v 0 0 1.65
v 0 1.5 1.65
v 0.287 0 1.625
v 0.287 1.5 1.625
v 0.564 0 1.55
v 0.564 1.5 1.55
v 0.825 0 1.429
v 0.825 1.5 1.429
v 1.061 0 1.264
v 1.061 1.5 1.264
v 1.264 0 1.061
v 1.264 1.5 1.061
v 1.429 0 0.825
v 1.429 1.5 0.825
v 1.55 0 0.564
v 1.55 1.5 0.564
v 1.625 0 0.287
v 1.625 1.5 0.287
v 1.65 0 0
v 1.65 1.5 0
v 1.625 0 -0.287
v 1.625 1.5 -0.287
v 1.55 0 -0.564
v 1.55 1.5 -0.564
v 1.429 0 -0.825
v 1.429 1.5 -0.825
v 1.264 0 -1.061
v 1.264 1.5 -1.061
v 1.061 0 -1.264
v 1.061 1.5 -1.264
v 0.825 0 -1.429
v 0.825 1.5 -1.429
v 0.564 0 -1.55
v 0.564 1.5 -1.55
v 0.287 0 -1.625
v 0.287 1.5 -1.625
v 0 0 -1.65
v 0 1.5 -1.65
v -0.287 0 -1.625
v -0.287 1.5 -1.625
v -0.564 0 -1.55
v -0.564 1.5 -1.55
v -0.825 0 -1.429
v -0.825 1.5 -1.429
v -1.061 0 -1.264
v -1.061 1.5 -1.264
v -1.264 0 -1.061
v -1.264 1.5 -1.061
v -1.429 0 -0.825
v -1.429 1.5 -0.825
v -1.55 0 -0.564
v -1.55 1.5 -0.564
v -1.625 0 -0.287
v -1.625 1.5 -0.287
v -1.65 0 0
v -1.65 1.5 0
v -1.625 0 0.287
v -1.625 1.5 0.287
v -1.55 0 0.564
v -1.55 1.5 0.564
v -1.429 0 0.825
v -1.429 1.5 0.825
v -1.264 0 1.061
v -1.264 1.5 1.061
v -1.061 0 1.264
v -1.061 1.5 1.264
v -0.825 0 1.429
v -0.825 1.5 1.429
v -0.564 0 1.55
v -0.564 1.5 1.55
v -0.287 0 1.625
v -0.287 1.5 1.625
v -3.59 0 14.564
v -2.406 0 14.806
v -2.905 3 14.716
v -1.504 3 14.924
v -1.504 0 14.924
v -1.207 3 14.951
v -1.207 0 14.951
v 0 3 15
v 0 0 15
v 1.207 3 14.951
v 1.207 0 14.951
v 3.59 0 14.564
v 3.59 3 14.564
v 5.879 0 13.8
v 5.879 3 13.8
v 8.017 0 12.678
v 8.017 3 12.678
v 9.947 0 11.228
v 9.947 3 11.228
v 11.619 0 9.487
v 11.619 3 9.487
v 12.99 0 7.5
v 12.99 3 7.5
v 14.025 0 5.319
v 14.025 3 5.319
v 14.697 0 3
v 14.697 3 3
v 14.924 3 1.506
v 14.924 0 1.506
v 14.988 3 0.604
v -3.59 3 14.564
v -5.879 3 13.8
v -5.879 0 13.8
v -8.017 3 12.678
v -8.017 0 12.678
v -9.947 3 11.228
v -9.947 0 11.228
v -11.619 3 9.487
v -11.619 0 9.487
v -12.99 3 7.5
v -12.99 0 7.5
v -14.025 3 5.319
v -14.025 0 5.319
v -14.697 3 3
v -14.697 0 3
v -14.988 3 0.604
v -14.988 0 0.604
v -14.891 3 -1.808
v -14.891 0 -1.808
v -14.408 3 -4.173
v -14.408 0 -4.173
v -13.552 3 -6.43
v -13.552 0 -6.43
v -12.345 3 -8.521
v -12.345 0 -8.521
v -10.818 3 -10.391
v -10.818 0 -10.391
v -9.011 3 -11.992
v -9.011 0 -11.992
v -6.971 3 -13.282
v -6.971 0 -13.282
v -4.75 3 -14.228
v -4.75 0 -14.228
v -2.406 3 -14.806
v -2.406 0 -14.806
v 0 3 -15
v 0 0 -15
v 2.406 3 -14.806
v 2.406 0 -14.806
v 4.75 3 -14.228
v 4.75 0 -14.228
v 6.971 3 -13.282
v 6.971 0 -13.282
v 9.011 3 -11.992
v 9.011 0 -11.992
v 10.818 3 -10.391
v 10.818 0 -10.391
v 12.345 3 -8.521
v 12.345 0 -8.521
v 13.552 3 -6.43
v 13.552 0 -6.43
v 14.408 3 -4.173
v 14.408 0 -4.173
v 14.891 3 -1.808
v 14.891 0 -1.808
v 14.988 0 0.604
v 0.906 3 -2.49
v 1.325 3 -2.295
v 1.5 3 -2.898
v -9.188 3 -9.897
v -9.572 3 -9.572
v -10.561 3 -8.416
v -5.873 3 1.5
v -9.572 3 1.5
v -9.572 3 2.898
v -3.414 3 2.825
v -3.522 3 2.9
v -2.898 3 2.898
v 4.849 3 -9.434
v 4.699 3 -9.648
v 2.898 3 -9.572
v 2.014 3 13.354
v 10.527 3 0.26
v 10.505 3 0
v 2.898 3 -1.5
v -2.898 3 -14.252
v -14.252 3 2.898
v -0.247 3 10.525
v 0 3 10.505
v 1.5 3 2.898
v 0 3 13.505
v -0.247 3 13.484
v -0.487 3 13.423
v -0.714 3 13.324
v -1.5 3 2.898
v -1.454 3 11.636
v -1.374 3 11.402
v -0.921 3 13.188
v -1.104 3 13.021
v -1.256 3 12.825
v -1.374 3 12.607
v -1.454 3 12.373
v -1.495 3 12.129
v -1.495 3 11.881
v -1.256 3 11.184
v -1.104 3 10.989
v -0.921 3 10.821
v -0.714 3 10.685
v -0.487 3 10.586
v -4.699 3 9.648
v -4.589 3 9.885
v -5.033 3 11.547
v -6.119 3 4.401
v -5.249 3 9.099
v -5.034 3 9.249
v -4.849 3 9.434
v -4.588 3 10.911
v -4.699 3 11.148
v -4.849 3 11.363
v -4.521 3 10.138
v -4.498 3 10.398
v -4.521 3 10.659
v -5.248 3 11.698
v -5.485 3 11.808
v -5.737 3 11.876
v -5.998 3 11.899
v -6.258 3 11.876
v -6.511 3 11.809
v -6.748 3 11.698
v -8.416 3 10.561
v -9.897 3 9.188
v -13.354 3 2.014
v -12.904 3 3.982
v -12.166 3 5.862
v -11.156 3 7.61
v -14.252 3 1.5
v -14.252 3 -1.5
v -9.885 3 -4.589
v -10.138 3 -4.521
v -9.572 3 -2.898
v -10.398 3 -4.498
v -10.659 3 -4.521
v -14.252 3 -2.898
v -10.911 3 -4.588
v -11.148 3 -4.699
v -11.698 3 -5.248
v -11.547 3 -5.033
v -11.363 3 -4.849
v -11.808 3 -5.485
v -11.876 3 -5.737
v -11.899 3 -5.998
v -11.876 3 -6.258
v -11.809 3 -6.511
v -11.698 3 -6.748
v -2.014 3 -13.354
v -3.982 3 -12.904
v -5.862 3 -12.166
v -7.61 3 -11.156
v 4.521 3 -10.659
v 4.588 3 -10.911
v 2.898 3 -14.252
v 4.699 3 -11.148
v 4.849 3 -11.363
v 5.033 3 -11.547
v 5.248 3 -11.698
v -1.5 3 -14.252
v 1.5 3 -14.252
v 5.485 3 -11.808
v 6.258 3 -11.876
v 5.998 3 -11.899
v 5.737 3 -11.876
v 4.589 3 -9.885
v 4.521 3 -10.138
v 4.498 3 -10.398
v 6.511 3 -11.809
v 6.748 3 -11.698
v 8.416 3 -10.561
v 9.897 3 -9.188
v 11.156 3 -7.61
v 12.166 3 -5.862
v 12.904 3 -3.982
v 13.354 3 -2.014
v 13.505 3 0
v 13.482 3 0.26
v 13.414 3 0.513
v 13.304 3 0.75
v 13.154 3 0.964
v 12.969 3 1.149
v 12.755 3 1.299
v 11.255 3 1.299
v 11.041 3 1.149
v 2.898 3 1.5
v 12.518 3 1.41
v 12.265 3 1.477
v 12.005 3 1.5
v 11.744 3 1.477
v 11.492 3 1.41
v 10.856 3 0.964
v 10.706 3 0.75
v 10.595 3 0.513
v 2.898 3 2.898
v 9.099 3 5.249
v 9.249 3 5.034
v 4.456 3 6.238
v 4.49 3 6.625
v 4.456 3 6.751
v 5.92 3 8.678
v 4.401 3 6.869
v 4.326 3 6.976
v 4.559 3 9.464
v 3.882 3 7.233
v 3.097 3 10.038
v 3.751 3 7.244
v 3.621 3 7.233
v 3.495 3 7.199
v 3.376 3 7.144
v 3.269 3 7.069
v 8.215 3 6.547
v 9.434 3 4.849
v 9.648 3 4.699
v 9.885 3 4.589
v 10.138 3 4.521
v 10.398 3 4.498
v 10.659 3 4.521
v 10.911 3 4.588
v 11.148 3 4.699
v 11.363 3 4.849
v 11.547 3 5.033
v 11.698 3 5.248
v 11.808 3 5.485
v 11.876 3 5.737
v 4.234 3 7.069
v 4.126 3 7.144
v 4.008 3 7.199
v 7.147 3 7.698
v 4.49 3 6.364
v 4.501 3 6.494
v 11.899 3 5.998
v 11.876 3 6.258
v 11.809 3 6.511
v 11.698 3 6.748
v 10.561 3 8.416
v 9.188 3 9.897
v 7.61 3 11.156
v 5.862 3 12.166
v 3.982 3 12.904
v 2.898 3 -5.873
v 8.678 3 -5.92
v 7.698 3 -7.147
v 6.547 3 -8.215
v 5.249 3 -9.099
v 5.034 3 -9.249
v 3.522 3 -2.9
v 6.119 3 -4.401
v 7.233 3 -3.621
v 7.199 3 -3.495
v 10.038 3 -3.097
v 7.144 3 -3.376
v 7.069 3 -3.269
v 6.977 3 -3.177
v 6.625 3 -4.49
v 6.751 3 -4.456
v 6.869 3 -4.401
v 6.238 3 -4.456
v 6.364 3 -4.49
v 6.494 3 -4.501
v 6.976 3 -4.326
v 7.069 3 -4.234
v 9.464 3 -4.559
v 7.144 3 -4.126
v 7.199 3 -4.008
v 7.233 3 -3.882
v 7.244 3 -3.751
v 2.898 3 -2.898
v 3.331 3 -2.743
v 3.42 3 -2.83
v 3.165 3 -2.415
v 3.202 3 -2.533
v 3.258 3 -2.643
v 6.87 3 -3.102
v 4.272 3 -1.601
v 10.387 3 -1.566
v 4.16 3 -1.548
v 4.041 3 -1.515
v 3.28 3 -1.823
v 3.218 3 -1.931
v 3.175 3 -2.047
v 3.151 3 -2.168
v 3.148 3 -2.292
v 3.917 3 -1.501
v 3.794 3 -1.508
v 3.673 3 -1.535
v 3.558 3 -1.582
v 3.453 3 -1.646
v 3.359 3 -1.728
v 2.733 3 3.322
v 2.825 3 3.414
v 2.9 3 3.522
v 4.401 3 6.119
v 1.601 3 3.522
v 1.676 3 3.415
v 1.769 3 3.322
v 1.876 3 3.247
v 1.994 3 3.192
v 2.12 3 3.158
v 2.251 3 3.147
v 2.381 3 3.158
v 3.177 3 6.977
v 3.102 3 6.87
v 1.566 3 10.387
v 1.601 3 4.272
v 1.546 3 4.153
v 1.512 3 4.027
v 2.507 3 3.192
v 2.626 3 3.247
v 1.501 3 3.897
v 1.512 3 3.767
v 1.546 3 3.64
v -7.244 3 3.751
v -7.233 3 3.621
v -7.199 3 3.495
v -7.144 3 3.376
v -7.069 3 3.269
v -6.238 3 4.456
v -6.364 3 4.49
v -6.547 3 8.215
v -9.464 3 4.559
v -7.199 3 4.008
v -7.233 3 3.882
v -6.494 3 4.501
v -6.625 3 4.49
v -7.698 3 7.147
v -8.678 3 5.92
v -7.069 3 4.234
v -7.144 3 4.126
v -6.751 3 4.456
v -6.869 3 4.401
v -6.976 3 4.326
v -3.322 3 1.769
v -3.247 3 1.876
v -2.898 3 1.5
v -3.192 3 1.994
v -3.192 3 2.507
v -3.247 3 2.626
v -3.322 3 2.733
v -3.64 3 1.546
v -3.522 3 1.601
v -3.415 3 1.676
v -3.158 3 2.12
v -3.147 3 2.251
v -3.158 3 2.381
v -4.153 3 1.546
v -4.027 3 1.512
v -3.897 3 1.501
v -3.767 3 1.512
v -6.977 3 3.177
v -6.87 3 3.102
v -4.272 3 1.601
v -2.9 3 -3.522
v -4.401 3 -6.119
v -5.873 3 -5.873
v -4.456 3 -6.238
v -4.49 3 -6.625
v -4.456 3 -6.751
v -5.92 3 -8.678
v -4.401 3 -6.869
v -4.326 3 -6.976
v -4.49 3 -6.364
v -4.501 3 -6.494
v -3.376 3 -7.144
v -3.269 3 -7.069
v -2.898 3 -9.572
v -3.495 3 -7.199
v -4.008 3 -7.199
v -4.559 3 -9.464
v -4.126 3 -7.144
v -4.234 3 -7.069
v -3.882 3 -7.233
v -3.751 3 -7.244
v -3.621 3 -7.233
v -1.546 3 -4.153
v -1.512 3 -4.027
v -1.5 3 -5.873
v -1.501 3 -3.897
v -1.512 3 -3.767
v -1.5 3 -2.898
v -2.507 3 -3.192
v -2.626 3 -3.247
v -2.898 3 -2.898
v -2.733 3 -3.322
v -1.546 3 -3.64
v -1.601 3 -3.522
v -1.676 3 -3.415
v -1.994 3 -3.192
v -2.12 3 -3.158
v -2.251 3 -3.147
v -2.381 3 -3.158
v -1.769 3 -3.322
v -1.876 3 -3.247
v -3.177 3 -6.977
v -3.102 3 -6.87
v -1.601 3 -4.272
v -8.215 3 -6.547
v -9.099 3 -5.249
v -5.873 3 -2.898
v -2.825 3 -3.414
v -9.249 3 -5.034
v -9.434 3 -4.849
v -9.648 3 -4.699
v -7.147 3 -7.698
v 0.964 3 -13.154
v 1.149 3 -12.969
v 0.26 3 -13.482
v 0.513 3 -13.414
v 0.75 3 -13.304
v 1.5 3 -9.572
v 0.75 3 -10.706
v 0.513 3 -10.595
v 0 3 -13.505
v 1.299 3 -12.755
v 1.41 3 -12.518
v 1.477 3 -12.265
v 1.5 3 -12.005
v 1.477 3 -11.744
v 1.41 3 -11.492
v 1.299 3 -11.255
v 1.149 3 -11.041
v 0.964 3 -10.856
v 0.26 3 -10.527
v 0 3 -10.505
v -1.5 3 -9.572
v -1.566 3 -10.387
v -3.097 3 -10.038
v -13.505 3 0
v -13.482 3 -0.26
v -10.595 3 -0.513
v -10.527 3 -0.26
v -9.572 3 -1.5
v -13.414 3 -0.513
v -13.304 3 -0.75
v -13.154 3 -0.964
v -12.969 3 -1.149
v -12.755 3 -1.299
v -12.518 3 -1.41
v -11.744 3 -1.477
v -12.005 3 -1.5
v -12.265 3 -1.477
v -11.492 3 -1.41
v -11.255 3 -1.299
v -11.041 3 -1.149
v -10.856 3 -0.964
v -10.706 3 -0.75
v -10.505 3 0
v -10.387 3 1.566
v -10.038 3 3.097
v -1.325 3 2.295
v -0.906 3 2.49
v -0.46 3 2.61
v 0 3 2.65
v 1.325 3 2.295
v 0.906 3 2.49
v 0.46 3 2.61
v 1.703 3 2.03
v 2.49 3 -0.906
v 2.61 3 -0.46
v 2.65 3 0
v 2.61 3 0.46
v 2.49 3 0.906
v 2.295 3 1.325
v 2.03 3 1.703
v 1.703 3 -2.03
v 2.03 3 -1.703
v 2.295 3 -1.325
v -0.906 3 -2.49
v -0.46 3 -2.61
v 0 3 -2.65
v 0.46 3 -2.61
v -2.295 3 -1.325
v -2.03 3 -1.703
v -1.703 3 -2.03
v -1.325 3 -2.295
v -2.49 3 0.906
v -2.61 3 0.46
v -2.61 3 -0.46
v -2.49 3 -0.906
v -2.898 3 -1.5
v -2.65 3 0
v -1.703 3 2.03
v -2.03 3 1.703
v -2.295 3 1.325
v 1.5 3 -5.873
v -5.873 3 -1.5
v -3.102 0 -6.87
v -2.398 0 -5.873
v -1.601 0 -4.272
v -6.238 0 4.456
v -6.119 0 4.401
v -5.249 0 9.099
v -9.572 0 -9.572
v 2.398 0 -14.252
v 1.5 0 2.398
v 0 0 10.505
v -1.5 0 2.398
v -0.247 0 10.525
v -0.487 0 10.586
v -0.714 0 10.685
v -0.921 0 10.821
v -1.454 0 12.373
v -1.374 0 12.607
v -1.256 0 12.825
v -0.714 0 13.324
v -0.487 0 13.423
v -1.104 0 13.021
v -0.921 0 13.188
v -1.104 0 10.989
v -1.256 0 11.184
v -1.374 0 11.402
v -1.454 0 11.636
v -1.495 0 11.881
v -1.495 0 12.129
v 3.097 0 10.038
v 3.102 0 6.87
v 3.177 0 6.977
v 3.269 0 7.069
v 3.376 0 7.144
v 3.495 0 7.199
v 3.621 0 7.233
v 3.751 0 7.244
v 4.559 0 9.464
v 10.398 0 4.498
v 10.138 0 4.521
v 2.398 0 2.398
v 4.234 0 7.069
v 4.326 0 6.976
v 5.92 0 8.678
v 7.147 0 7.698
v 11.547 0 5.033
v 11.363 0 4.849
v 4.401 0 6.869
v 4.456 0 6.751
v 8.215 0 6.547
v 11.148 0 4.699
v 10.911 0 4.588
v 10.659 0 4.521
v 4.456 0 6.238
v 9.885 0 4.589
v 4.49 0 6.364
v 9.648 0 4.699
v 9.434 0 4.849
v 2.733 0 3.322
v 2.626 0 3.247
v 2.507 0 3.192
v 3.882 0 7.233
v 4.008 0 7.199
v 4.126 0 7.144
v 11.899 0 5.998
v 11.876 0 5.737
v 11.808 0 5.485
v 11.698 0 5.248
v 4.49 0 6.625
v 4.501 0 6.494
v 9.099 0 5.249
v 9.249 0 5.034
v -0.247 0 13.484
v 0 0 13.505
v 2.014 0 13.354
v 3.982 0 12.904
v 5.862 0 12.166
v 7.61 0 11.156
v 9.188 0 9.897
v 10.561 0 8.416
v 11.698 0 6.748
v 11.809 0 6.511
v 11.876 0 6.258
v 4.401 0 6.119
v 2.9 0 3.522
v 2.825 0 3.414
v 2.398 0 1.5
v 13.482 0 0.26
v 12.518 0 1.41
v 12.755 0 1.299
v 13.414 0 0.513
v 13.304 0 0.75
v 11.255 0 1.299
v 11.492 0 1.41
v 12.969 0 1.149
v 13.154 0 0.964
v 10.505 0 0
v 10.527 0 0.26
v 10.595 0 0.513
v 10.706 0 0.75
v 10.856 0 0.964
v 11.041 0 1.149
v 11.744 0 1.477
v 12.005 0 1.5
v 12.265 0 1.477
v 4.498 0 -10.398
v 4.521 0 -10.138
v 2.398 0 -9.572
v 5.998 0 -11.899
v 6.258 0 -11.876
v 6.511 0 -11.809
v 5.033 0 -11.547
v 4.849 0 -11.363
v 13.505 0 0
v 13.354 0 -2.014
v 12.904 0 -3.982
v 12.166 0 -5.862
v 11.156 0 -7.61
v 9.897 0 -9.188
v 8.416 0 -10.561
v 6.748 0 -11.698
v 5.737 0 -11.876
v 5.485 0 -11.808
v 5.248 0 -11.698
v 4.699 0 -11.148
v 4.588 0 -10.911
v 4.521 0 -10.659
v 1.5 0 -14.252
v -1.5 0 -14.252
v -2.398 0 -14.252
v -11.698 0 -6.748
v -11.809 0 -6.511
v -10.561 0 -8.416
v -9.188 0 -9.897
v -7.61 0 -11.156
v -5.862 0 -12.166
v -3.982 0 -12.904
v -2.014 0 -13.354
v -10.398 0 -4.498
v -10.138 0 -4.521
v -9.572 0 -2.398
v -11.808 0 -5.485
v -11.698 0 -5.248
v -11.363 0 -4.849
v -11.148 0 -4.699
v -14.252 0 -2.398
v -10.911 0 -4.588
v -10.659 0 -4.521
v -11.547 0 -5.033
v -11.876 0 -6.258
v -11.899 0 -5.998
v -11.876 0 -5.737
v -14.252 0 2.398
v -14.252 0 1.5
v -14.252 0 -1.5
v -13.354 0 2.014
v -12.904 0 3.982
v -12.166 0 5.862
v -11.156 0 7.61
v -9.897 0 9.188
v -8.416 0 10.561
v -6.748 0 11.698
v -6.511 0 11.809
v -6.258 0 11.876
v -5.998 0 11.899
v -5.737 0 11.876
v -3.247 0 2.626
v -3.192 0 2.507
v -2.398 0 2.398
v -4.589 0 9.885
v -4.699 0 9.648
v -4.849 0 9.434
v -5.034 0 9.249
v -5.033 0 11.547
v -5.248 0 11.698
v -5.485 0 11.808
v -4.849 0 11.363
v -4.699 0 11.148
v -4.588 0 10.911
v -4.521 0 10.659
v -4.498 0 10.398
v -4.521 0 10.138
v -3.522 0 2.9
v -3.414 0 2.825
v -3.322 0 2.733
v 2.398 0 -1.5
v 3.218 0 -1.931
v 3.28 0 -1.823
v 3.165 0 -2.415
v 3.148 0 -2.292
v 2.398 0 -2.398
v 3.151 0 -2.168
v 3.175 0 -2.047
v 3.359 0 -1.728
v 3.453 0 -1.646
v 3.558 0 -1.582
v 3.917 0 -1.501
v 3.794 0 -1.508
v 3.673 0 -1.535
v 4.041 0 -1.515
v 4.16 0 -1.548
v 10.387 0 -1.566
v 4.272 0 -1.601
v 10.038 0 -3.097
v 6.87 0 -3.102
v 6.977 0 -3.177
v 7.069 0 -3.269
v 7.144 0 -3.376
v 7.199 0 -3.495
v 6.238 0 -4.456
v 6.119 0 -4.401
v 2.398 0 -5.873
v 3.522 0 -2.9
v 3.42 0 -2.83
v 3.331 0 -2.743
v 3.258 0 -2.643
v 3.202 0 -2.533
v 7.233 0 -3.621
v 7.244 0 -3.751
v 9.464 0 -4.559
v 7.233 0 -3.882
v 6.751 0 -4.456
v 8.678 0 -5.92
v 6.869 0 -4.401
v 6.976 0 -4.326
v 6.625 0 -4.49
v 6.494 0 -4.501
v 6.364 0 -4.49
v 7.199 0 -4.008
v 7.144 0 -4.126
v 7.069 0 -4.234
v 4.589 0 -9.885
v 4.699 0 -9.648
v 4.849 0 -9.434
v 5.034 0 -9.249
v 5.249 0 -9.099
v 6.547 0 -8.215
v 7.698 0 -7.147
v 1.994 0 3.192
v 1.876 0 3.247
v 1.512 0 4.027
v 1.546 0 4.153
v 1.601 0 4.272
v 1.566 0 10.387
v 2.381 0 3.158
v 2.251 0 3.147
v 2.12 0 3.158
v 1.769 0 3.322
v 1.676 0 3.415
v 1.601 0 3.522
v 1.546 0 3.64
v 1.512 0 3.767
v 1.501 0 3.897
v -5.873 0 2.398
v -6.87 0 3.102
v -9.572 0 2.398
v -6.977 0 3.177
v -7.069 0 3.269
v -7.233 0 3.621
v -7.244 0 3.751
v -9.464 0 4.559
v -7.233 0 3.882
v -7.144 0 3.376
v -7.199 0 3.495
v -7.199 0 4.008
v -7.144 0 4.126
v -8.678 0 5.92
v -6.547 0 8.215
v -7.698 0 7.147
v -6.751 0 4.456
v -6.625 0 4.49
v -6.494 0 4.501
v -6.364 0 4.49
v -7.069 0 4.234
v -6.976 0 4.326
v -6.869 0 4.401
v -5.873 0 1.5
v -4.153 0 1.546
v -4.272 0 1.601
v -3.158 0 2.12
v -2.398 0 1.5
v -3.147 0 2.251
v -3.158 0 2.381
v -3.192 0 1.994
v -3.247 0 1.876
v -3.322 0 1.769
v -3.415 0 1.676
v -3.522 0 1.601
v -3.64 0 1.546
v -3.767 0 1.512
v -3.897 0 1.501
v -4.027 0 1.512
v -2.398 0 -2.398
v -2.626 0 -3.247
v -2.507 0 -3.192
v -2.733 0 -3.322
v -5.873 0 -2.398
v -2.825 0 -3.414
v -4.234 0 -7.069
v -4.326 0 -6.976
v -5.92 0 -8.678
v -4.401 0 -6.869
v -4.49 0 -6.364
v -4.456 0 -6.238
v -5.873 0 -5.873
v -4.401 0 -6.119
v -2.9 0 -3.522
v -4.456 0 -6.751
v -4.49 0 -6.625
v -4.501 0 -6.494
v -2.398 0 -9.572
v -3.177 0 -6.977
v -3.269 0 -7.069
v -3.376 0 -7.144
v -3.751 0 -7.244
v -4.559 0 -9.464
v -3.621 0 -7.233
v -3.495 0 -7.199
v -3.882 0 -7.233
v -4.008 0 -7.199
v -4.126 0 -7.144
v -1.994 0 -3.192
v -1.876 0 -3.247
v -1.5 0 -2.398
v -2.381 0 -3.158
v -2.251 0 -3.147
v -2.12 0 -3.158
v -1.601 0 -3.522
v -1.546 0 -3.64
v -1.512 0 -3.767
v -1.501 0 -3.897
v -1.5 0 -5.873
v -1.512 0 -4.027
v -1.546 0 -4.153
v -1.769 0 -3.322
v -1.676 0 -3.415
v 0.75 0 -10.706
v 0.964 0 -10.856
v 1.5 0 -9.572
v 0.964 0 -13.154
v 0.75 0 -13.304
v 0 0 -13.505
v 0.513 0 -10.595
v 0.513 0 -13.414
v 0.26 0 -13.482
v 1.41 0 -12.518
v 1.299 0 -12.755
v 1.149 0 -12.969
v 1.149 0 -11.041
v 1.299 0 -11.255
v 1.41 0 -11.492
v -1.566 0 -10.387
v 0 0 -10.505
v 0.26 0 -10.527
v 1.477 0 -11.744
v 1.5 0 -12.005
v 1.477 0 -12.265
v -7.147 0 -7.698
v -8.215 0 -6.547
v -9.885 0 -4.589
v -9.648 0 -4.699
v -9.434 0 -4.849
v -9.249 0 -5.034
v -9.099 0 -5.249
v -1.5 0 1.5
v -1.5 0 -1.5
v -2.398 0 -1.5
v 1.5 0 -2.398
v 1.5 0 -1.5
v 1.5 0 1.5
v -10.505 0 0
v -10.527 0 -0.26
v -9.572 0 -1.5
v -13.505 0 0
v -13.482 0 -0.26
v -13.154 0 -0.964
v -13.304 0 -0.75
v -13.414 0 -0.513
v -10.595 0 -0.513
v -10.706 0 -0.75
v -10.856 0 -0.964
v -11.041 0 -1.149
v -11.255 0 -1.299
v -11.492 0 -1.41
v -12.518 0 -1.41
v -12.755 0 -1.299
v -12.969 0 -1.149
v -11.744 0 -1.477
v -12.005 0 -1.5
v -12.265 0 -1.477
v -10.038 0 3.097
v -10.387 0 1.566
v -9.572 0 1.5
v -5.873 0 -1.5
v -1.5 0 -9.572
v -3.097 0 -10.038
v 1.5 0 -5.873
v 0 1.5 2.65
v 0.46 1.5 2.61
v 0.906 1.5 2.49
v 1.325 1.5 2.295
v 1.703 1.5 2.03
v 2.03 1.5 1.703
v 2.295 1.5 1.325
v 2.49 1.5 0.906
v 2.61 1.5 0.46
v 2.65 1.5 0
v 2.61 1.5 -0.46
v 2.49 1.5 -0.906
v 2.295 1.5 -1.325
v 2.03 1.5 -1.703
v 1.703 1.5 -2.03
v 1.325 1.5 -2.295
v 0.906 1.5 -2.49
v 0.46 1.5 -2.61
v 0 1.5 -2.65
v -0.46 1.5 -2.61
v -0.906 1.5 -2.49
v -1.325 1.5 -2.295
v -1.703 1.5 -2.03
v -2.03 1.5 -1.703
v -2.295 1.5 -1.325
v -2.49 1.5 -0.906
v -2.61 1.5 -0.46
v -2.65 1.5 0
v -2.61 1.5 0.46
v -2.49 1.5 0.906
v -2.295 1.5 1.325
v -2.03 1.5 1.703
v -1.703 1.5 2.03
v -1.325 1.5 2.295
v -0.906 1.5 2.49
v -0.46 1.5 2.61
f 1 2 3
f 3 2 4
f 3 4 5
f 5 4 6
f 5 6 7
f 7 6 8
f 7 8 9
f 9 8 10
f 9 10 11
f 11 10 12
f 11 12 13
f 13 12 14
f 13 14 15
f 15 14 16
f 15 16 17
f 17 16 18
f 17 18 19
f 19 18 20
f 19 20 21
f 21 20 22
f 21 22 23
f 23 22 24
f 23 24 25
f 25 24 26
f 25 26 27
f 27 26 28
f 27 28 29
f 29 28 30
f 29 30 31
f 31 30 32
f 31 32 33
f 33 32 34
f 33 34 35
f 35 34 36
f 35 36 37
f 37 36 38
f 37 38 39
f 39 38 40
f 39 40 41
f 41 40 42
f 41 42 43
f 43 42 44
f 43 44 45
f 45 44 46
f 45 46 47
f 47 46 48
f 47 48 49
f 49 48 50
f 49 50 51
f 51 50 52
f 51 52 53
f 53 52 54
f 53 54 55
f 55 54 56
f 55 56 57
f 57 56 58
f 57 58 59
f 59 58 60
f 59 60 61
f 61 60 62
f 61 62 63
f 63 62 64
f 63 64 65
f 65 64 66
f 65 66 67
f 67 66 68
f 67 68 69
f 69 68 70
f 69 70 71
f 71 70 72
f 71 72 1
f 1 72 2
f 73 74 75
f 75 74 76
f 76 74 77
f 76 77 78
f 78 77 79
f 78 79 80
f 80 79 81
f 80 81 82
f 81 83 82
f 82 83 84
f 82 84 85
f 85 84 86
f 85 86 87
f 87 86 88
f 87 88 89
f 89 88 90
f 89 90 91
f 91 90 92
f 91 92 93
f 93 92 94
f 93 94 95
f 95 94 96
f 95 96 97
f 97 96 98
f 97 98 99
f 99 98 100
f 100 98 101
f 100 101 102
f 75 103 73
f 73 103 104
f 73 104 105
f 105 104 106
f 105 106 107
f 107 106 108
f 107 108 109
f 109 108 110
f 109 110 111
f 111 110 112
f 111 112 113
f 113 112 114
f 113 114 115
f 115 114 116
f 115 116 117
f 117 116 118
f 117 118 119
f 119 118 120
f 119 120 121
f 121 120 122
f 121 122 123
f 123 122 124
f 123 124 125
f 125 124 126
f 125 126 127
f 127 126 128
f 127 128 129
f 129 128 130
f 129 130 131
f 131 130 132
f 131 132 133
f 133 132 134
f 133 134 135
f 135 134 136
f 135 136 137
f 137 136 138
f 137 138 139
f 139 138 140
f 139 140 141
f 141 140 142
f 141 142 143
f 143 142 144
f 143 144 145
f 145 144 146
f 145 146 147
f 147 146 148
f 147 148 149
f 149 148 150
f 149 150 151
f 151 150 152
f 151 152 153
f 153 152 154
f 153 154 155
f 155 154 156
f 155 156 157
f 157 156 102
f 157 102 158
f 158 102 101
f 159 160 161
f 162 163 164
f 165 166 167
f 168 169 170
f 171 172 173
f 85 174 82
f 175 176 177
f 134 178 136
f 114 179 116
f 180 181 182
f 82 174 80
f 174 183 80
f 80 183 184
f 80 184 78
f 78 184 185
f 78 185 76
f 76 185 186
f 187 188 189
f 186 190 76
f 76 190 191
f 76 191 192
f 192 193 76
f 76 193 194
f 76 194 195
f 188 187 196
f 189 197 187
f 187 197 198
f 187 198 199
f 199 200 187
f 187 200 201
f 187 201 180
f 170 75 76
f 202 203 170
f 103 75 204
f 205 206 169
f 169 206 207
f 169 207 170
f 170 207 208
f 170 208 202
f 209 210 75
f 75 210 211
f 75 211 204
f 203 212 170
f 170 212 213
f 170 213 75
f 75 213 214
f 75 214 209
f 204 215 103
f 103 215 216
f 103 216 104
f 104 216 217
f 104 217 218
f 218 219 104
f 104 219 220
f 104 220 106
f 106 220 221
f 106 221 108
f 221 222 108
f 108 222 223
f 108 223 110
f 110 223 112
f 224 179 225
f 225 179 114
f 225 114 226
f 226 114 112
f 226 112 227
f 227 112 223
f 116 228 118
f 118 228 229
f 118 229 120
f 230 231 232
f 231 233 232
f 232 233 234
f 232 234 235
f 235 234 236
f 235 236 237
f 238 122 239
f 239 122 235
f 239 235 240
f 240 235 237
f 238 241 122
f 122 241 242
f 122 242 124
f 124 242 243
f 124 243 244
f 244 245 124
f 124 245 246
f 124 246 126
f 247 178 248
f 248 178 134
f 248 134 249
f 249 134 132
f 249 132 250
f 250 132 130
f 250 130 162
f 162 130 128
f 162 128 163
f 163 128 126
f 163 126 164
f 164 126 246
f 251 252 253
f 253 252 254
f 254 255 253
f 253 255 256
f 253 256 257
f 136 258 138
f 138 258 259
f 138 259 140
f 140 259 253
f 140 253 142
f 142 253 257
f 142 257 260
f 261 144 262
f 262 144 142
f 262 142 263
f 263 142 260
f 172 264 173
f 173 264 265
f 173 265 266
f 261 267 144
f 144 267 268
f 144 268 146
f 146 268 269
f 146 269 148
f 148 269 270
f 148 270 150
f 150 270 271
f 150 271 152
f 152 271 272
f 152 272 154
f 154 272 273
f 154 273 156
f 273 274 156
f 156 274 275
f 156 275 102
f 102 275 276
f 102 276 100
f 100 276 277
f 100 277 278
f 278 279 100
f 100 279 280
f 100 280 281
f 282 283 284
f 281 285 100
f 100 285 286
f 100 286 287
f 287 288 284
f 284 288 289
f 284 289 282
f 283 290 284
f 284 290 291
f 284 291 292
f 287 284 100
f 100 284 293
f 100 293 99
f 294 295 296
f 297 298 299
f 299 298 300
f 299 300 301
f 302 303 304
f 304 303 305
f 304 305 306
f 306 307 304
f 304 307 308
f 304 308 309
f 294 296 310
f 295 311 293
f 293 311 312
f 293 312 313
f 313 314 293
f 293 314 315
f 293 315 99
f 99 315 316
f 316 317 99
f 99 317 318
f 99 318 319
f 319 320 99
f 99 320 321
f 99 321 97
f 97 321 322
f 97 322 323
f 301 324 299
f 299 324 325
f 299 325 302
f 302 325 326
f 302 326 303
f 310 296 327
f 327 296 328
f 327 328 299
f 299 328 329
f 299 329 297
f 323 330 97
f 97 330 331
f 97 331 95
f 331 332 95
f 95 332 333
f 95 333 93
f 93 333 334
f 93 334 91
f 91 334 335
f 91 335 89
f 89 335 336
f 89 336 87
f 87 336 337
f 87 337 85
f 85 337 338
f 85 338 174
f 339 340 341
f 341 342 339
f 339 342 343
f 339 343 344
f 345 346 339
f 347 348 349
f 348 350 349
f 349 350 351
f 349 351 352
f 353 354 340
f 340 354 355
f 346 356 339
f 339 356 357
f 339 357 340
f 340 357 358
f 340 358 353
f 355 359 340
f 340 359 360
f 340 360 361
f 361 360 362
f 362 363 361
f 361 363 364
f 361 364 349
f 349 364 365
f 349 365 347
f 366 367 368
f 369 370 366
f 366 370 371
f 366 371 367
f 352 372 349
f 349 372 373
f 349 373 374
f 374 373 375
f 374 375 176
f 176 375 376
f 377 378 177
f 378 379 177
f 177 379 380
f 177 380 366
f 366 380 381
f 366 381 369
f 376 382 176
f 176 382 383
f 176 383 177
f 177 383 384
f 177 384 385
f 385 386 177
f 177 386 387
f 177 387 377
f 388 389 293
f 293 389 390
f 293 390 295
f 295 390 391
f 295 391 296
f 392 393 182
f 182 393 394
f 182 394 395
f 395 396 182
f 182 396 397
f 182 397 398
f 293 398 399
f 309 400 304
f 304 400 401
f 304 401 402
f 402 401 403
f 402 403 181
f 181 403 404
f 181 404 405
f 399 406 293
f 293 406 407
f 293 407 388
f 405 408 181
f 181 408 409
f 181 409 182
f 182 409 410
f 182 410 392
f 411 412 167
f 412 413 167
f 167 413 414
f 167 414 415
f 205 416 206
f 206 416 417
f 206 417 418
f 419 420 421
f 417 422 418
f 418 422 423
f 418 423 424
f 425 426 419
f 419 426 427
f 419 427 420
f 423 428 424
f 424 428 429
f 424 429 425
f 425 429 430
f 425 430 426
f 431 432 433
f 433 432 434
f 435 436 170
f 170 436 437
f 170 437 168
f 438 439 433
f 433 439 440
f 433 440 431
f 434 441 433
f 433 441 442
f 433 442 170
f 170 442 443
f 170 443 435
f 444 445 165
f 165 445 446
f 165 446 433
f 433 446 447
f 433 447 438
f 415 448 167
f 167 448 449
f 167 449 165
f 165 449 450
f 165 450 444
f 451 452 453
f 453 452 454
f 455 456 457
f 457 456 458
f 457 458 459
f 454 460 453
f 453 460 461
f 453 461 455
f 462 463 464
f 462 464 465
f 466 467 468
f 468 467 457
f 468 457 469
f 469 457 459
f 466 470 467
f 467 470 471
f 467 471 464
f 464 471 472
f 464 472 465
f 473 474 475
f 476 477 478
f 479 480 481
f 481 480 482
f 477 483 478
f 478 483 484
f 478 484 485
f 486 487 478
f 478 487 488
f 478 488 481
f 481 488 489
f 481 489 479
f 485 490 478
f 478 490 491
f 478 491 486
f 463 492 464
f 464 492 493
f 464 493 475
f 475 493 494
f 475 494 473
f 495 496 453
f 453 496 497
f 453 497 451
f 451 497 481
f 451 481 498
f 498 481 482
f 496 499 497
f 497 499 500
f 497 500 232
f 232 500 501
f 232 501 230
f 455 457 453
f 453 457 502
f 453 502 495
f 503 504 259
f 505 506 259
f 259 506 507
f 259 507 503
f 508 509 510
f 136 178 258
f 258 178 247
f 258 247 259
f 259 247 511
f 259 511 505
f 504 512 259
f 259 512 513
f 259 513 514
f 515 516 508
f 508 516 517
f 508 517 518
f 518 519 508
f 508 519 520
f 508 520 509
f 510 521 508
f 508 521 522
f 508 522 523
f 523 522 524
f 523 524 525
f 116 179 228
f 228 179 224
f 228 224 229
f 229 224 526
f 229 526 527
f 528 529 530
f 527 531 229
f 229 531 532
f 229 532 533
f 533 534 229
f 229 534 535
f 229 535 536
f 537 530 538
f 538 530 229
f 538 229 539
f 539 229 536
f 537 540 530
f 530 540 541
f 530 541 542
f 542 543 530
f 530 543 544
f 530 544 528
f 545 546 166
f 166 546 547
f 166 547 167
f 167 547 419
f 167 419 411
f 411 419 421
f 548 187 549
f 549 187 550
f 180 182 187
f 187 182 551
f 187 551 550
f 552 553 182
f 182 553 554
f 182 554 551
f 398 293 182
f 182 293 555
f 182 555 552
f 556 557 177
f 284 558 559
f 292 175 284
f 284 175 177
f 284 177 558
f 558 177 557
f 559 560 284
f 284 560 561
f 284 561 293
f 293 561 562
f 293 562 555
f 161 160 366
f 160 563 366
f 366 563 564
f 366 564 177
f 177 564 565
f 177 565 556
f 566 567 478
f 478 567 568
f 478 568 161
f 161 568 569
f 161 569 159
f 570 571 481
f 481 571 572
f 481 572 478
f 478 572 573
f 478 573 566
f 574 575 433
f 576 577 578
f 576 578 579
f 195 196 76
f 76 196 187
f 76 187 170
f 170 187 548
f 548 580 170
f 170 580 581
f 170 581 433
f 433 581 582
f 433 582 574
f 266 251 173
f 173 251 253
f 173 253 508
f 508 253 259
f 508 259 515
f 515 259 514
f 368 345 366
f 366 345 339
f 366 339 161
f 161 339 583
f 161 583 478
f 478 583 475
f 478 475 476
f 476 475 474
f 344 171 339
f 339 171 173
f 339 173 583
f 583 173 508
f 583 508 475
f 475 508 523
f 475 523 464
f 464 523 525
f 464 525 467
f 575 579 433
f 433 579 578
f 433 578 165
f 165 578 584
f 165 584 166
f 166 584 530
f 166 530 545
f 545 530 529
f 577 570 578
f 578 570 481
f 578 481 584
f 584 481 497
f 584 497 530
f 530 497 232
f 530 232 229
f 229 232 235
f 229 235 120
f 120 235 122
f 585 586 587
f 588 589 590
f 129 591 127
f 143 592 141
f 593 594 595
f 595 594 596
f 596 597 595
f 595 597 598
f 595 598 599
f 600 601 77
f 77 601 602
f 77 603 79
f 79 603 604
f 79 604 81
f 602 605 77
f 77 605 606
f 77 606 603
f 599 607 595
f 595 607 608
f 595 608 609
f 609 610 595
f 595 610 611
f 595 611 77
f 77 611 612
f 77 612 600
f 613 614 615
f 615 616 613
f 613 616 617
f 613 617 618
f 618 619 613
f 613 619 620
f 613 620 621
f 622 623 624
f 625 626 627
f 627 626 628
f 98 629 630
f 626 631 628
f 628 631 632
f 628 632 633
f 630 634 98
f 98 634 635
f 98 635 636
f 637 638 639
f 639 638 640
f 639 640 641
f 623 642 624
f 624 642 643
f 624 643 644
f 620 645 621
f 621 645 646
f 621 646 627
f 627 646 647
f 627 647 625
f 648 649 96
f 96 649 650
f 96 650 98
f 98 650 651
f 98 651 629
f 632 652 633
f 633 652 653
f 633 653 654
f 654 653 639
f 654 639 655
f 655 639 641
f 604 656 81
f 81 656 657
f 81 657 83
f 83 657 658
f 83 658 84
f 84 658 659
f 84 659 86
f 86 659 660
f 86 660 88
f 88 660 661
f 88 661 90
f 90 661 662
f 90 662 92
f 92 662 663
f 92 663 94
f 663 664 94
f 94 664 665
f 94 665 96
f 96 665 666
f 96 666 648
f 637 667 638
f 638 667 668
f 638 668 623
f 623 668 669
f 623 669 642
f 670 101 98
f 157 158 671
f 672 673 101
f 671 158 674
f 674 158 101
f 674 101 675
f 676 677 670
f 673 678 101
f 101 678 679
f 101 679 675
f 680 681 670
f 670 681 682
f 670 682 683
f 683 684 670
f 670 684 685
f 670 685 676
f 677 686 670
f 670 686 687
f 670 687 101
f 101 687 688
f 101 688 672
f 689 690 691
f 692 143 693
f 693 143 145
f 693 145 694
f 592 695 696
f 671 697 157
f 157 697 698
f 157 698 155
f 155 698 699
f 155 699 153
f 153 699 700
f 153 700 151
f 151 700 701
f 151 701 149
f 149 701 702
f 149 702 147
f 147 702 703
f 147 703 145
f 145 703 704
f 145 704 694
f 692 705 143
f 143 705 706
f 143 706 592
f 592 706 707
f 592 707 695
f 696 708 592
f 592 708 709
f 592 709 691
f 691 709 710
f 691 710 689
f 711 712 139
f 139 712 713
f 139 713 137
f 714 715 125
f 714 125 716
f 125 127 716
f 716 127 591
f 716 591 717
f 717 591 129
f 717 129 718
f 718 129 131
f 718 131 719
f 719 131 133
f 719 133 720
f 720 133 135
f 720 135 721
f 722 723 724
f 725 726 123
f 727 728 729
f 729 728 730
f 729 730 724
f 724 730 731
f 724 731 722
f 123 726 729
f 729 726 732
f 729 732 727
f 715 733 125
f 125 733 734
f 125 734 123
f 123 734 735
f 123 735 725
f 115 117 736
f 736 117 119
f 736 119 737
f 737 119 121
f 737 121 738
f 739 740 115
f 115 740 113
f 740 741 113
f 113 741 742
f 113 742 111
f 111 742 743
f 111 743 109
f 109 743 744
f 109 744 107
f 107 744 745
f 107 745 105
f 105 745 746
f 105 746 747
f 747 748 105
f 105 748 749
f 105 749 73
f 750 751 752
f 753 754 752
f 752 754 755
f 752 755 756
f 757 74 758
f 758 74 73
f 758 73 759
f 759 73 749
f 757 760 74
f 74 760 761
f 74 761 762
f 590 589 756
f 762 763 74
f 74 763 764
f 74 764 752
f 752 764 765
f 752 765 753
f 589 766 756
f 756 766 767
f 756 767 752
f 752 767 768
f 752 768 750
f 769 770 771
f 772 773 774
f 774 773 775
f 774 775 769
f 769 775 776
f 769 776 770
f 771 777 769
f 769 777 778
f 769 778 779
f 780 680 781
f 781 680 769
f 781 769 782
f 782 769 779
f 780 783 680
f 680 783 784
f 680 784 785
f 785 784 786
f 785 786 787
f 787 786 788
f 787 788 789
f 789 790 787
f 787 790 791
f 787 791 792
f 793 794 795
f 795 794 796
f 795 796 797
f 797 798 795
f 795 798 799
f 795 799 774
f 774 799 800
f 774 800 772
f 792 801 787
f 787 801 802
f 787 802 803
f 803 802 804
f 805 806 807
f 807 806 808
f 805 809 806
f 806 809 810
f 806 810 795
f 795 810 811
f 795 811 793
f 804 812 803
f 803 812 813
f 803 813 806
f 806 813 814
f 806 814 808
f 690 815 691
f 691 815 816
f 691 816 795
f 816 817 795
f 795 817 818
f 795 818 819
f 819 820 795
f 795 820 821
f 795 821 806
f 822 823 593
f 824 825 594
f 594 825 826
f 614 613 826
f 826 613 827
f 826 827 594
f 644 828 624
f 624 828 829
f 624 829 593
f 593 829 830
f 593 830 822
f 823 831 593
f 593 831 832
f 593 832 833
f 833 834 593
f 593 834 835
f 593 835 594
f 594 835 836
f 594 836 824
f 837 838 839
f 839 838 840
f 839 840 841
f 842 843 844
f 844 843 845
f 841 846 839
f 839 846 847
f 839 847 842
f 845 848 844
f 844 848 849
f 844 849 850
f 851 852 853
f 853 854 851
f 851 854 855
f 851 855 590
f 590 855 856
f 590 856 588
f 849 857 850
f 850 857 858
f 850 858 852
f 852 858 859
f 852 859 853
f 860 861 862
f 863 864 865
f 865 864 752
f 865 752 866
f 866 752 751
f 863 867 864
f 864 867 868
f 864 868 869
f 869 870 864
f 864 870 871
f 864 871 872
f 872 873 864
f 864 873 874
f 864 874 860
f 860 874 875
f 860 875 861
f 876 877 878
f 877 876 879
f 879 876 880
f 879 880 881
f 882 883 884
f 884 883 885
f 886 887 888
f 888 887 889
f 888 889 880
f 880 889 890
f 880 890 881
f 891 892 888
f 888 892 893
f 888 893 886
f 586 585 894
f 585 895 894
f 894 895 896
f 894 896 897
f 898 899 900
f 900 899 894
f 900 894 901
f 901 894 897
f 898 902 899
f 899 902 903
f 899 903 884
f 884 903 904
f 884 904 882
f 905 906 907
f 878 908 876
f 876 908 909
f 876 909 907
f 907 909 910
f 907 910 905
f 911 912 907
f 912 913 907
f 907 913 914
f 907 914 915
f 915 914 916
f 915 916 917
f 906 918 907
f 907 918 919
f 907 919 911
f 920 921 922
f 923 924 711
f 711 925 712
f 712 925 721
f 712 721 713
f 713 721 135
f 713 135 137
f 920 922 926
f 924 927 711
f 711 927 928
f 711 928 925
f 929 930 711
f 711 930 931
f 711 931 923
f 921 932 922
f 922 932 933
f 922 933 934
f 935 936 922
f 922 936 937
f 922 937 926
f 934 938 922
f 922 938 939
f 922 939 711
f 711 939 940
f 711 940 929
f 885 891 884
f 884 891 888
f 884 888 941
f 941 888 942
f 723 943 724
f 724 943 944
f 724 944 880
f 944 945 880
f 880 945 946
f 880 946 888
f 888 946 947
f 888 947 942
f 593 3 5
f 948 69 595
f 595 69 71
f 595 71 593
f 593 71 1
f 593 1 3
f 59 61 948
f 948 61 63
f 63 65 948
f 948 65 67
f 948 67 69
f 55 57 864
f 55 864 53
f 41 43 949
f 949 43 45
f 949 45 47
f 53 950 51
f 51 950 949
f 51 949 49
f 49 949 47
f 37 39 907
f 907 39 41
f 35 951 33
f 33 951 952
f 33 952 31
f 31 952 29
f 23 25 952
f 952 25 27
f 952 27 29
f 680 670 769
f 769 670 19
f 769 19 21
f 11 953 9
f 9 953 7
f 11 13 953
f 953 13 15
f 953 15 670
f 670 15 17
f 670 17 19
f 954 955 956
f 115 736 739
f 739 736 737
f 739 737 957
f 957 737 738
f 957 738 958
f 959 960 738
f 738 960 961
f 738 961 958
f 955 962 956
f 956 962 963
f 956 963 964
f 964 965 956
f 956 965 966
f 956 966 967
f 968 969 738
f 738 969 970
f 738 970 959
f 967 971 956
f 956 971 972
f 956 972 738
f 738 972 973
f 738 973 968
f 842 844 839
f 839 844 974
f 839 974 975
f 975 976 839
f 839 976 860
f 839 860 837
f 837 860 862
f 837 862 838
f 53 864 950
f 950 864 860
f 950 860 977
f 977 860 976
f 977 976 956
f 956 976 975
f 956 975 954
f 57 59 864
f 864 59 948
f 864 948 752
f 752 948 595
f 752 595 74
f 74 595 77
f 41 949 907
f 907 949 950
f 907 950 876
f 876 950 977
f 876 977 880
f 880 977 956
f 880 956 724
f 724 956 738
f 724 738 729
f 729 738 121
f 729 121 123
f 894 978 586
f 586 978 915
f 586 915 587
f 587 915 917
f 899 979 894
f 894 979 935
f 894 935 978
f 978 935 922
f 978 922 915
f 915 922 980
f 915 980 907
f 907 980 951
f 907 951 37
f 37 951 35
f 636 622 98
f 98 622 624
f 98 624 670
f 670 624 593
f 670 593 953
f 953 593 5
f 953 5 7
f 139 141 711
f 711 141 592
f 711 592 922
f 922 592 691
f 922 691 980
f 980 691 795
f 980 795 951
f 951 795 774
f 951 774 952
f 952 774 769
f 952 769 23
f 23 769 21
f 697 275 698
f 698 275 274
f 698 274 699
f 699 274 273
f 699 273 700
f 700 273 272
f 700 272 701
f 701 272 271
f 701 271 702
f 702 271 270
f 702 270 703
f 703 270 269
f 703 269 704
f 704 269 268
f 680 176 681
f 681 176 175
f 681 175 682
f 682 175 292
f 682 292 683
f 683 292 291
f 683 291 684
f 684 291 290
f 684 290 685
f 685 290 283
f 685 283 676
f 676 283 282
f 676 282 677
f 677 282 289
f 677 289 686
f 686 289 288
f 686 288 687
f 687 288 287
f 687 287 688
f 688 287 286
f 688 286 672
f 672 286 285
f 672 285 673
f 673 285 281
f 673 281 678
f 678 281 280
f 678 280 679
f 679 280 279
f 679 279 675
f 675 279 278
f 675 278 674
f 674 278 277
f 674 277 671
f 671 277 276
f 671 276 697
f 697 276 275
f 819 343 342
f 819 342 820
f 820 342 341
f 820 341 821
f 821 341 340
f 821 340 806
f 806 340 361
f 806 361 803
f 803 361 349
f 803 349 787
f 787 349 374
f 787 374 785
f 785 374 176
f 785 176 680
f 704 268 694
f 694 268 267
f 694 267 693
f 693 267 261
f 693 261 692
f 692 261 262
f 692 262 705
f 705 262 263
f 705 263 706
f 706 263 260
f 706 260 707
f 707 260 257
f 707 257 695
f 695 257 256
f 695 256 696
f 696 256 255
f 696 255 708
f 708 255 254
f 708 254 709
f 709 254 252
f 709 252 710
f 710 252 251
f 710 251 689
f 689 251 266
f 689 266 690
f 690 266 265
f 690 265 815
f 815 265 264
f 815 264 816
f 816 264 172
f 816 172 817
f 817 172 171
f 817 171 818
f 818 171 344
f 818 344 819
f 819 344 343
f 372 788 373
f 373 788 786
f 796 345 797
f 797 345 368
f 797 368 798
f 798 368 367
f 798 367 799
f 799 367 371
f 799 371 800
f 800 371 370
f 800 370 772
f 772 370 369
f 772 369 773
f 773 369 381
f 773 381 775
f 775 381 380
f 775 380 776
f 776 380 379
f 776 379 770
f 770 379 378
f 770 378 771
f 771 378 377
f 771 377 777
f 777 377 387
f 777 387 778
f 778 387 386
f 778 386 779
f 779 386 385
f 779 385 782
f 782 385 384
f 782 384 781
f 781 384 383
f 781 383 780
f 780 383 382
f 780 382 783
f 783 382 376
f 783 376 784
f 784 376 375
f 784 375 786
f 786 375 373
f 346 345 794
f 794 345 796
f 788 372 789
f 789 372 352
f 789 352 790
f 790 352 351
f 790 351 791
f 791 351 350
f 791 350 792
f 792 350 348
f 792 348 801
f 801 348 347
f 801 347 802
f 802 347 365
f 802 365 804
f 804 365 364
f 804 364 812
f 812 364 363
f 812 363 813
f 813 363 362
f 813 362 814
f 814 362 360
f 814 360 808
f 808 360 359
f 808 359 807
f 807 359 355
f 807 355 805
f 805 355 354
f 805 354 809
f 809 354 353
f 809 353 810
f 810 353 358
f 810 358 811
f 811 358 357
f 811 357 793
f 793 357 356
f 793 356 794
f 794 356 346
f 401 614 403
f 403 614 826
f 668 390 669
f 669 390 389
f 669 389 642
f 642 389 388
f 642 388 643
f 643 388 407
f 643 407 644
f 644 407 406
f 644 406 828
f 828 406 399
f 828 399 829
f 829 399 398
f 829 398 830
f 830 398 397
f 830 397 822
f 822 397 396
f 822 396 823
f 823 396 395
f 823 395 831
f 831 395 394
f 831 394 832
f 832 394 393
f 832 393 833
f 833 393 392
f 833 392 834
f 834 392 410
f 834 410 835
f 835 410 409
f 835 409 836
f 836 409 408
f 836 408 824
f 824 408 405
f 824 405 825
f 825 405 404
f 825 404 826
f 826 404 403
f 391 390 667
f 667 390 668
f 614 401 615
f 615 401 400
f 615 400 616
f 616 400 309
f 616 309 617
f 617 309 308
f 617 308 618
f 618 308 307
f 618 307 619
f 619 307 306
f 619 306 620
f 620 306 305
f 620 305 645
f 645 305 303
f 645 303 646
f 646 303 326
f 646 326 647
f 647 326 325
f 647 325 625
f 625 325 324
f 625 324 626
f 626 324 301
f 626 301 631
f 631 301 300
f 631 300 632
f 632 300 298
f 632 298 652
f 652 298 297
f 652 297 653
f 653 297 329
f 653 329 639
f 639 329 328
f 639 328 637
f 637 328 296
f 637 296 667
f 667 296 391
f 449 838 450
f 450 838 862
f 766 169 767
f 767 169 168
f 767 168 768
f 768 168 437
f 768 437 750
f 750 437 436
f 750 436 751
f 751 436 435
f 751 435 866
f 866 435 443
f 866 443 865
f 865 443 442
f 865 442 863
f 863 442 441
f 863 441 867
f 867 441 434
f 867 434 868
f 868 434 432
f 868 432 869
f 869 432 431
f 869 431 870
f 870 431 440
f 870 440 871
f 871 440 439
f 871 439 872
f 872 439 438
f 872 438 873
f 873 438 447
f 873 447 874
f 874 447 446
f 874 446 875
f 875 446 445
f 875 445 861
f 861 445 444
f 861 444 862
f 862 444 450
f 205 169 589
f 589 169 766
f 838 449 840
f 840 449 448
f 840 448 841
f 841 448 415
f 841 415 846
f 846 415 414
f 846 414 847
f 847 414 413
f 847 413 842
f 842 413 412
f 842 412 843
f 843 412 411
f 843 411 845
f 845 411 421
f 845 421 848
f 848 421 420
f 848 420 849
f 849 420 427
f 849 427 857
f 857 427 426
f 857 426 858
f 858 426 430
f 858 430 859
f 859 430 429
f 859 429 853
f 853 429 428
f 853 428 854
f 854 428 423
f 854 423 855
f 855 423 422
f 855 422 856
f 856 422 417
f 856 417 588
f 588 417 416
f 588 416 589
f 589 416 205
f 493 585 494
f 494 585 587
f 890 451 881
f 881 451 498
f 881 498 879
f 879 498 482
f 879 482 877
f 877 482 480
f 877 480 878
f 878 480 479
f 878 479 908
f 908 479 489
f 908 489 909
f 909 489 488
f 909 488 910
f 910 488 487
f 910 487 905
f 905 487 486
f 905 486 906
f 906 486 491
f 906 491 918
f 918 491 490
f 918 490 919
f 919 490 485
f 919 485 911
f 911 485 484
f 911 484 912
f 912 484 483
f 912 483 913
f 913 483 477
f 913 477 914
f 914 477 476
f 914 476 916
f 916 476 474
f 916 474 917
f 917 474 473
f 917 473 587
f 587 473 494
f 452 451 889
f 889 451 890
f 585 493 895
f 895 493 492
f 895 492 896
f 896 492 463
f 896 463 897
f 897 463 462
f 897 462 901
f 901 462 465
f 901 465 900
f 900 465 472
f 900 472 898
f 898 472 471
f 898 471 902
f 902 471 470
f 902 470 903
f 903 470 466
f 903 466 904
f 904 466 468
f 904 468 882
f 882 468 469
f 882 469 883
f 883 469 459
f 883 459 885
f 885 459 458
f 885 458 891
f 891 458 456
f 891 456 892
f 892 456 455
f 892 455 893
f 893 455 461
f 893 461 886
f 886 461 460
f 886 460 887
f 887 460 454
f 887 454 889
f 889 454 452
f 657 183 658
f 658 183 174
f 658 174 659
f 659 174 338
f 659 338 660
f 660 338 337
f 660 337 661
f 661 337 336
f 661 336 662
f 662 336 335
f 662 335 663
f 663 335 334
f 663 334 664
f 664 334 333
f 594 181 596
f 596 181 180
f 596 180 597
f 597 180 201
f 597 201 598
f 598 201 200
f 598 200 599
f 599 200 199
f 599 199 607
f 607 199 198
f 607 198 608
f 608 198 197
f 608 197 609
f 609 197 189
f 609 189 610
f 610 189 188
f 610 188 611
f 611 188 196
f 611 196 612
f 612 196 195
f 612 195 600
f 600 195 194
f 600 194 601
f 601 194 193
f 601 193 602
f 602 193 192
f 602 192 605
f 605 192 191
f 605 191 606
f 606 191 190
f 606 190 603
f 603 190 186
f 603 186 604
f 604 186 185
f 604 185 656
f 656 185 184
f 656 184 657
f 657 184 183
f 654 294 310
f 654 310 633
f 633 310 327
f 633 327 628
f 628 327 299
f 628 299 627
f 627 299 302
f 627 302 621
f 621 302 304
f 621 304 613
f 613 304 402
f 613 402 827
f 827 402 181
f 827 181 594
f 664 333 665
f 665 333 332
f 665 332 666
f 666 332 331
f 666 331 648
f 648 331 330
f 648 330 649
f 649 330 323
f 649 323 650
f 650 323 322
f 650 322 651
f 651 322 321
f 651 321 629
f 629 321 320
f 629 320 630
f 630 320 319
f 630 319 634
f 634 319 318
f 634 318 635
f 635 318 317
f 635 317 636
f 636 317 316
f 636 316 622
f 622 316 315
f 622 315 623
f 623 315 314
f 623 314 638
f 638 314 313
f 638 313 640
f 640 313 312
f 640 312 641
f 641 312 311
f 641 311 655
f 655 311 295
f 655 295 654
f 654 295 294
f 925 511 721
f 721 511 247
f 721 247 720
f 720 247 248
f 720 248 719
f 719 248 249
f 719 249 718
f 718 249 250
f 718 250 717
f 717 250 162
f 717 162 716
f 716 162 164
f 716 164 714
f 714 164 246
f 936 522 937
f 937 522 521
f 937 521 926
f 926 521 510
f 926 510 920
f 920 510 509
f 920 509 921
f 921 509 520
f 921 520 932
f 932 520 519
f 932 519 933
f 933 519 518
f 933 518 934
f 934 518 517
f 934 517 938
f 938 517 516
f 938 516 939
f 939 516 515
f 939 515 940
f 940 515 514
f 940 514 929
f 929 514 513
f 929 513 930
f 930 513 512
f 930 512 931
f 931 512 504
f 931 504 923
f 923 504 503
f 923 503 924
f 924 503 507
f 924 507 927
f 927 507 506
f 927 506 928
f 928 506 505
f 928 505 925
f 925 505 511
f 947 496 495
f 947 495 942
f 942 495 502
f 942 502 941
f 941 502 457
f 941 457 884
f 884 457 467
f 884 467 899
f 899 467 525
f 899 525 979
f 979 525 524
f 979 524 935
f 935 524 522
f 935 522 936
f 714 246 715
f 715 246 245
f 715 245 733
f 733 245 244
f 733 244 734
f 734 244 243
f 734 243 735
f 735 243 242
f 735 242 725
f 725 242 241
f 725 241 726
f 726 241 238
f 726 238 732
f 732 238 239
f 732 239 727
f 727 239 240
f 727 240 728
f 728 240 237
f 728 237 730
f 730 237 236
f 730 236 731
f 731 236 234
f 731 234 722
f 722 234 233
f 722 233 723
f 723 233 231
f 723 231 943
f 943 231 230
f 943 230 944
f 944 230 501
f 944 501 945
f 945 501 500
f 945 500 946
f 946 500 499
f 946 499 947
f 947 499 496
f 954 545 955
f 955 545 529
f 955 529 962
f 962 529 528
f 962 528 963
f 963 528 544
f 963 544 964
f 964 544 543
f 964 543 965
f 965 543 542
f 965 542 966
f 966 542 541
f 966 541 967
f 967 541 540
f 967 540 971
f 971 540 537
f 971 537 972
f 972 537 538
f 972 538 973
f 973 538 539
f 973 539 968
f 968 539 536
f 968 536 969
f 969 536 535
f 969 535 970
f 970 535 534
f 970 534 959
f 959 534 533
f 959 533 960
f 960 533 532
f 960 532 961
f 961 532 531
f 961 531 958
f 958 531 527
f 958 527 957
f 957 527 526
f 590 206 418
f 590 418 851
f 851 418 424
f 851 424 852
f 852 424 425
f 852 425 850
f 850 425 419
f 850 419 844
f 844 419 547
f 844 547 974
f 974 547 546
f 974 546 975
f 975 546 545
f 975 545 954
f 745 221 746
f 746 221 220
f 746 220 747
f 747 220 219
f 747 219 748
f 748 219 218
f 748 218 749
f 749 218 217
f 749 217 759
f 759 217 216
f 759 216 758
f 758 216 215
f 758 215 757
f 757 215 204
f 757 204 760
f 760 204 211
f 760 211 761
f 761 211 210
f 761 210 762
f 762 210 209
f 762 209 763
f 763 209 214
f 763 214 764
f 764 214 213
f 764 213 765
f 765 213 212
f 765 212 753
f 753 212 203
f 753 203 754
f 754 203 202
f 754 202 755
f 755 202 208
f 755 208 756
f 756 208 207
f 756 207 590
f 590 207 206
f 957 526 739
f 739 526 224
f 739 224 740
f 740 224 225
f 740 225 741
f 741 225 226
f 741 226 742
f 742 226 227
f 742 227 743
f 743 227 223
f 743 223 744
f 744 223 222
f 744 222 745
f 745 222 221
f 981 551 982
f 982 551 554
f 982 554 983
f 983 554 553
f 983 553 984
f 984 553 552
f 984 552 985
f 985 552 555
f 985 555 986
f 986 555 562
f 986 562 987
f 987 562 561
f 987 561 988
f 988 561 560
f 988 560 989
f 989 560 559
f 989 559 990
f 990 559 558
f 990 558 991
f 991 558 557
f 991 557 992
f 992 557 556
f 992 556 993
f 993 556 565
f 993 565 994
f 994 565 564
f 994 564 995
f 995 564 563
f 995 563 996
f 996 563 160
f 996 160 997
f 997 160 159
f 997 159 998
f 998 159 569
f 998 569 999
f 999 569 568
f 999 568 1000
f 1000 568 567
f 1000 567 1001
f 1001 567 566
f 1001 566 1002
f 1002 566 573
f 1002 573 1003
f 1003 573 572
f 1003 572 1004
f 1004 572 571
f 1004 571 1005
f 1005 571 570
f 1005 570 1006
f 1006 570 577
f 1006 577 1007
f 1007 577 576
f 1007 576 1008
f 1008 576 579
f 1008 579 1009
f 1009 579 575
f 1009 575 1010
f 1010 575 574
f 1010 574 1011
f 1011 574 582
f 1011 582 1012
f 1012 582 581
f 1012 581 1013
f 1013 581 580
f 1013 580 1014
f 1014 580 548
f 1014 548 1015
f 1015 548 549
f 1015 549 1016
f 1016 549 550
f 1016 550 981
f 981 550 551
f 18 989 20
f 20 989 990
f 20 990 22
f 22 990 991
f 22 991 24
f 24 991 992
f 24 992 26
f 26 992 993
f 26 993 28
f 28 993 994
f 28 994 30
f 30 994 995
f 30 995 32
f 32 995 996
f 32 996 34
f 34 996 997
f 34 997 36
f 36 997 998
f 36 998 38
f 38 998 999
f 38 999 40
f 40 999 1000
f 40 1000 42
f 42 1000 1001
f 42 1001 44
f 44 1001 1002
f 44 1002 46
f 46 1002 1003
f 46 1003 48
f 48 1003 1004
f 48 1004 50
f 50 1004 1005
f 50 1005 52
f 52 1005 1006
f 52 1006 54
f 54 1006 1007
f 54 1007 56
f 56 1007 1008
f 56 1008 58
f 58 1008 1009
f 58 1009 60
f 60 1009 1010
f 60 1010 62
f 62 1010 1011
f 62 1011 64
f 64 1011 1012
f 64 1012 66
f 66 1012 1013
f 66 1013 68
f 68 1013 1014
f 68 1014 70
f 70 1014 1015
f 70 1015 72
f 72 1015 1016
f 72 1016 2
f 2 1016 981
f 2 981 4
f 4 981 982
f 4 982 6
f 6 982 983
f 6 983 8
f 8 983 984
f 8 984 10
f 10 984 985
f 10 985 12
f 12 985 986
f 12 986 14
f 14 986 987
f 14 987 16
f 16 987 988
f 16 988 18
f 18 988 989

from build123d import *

# Parameters (mm, degrees)
SKETCH_1_R          = 15
EXTRUDE_2_DEPTH     = 3
SKETCH_2_R          = 1.65
CUT_EXTRUDE_2_DEPTH = 17
SKETCH_2_4_R        = 2.65
SKETCH_2_4_R_2      = 1.65
CUT_EXTRUDE_3_DEPTH = 1.5


with BuildPart() as part:
    # 草图1 → 凸台-拉伸2 (new body)
    with BuildSketch(Plane(origin=(0, 0, 0), x_dir=(1, 0, 0), z_dir=(0, 1, 0))):
        Circle(SKETCH_1_R)
    extrude(amount=EXTRUDE_2_DEPTH)

    # 草图2 → 切除-拉伸2 (cut)
    with BuildSketch(Plane(origin=(0, 3, 0), x_dir=(1, 0, 0), z_dir=(0, 1, 0))):
        with BuildLine():
            Line((-4.400758471, 6.119299378), (-2.900232319, 3.521527012))
            ThreePointArc((-2.900232319, 3.521527012), (-1.87565769, 3.247215458), (-1.601346136, 4.271790088))
            Line((-1.601346136, 4.271790088), (-3.101872288, 6.869562454))
            ThreePointArc((-3.101872288, 6.869562454), (-4.126446917, 7.143874008), (-4.400758471, 6.119299378))
        make_face()
        with BuildLine():
            Line((6.119299378, 4.400758471), (3.521527012, 2.900232319))
            ThreePointArc((3.521527012, 2.900232319), (3.247215458, 1.87565769), (4.271790088, 1.601346136))
            Line((4.271790088, 1.601346136), (6.869562454, 3.101872288))
            ThreePointArc((6.869562454, 3.101872288), (7.143874008, 4.126446917), (6.119299378, 4.400758471))
        make_face()
        with BuildLine():
            Line((4.400758471, -6.119299378), (2.900232319, -3.521527012))
            ThreePointArc((2.900232319, -3.521527012), (1.87565769, -3.247215458), (1.601346136, -4.271790088))
            Line((1.601346136, -4.271790088), (3.101872288, -6.869562454))
            ThreePointArc((3.101872288, -6.869562454), (4.126446917, -7.143874008), (4.400758471, -6.119299378))
        make_face()
        with BuildLine():
            Line((-6.119299378, -4.400758471), (-3.521527012, -2.900232319))
            ThreePointArc((-3.521527012, -2.900232319), (-3.247215458, -1.87565769), (-4.271790088, -1.601346136))
            Line((-4.271790088, -1.601346136), (-6.869562454, -3.101872288))
            ThreePointArc((-6.869562454, -3.101872288), (-7.143874008, -4.126446917), (-6.119299378, -4.400758471))
        make_face()
        Circle(SKETCH_2_R)
        with BuildLine():
            ThreePointArc((0, 10.504705492), (1.5, 12.004705492), (0, 13.504705492))
            ThreePointArc((0, 13.504705492), (-6.754721254, 11.694050248), (-11.698152145, 6.747614899))
            ThreePointArc((-11.698152145, 6.747614899), (-11.14828411, 4.698799352), (-9.099468564, 5.248667387))
            ThreePointArc((-9.099468564, 5.248667387), (-5.254195103, 9.096277882), (0, 10.504705492))
        make_face()
        with BuildLine():
            ThreePointArc((10.504705492, 0), (12.004705492, -1.5), (13.504705492, 0))
            ThreePointArc((13.504705492, 0), (11.694050248, 6.754721254), (6.747614899, 11.698152145))
            ThreePointArc((6.747614899, 11.698152145), (4.698799352, 11.14828411), (5.248667387, 9.099468564))
            ThreePointArc((5.248667387, 9.099468564), (9.096277882, 5.254195103), (10.504705492, 0))
        make_face()
        with BuildLine():
            ThreePointArc((0, -10.504705492), (-1.5, -12.004705492), (0, -13.504705492))
            ThreePointArc((0, -13.504705492), (6.754721254, -11.694050248), (11.698152145, -6.747614899))
            ThreePointArc((11.698152145, -6.747614899), (11.14828411, -4.698799352), (9.099468564, -5.248667387))
            ThreePointArc((9.099468564, -5.248667387), (5.254195103, -9.096277882), (0, -10.504705492))
        make_face()
        with BuildLine():
            ThreePointArc((-10.504705492, 0), (-12.004705492, 1.5), (-13.504705492, 0))
            ThreePointArc((-13.504705492, 0), (-11.694050248, -6.754721254), (-6.747614899, -11.698152145))
            ThreePointArc((-6.747614899, -11.698152145), (-4.698799352, -11.14828411), (-5.248667387, -9.099468564))
            ThreePointArc((-5.248667387, -9.099468564), (-9.096277882, -5.254195103), (-10.504705492, 0))
        make_face()
    extrude(amount=-CUT_EXTRUDE_2_DEPTH, mode=Mode.SUBTRACT)

    # 草图2<4> → 切除-拉伸3 (cut)
    with BuildSketch(Plane(origin=(0, 3, 0), x_dir=(1, 0, 0), z_dir=(0, 1, 0))):
        Circle(SKETCH_2_4_R)
        Circle(SKETCH_2_4_R_2, mode=Mode.SUBTRACT)
    extrude(amount=-CUT_EXTRUDE_3_DEPTH, mode=Mode.SUBTRACT)


solid = part.part
